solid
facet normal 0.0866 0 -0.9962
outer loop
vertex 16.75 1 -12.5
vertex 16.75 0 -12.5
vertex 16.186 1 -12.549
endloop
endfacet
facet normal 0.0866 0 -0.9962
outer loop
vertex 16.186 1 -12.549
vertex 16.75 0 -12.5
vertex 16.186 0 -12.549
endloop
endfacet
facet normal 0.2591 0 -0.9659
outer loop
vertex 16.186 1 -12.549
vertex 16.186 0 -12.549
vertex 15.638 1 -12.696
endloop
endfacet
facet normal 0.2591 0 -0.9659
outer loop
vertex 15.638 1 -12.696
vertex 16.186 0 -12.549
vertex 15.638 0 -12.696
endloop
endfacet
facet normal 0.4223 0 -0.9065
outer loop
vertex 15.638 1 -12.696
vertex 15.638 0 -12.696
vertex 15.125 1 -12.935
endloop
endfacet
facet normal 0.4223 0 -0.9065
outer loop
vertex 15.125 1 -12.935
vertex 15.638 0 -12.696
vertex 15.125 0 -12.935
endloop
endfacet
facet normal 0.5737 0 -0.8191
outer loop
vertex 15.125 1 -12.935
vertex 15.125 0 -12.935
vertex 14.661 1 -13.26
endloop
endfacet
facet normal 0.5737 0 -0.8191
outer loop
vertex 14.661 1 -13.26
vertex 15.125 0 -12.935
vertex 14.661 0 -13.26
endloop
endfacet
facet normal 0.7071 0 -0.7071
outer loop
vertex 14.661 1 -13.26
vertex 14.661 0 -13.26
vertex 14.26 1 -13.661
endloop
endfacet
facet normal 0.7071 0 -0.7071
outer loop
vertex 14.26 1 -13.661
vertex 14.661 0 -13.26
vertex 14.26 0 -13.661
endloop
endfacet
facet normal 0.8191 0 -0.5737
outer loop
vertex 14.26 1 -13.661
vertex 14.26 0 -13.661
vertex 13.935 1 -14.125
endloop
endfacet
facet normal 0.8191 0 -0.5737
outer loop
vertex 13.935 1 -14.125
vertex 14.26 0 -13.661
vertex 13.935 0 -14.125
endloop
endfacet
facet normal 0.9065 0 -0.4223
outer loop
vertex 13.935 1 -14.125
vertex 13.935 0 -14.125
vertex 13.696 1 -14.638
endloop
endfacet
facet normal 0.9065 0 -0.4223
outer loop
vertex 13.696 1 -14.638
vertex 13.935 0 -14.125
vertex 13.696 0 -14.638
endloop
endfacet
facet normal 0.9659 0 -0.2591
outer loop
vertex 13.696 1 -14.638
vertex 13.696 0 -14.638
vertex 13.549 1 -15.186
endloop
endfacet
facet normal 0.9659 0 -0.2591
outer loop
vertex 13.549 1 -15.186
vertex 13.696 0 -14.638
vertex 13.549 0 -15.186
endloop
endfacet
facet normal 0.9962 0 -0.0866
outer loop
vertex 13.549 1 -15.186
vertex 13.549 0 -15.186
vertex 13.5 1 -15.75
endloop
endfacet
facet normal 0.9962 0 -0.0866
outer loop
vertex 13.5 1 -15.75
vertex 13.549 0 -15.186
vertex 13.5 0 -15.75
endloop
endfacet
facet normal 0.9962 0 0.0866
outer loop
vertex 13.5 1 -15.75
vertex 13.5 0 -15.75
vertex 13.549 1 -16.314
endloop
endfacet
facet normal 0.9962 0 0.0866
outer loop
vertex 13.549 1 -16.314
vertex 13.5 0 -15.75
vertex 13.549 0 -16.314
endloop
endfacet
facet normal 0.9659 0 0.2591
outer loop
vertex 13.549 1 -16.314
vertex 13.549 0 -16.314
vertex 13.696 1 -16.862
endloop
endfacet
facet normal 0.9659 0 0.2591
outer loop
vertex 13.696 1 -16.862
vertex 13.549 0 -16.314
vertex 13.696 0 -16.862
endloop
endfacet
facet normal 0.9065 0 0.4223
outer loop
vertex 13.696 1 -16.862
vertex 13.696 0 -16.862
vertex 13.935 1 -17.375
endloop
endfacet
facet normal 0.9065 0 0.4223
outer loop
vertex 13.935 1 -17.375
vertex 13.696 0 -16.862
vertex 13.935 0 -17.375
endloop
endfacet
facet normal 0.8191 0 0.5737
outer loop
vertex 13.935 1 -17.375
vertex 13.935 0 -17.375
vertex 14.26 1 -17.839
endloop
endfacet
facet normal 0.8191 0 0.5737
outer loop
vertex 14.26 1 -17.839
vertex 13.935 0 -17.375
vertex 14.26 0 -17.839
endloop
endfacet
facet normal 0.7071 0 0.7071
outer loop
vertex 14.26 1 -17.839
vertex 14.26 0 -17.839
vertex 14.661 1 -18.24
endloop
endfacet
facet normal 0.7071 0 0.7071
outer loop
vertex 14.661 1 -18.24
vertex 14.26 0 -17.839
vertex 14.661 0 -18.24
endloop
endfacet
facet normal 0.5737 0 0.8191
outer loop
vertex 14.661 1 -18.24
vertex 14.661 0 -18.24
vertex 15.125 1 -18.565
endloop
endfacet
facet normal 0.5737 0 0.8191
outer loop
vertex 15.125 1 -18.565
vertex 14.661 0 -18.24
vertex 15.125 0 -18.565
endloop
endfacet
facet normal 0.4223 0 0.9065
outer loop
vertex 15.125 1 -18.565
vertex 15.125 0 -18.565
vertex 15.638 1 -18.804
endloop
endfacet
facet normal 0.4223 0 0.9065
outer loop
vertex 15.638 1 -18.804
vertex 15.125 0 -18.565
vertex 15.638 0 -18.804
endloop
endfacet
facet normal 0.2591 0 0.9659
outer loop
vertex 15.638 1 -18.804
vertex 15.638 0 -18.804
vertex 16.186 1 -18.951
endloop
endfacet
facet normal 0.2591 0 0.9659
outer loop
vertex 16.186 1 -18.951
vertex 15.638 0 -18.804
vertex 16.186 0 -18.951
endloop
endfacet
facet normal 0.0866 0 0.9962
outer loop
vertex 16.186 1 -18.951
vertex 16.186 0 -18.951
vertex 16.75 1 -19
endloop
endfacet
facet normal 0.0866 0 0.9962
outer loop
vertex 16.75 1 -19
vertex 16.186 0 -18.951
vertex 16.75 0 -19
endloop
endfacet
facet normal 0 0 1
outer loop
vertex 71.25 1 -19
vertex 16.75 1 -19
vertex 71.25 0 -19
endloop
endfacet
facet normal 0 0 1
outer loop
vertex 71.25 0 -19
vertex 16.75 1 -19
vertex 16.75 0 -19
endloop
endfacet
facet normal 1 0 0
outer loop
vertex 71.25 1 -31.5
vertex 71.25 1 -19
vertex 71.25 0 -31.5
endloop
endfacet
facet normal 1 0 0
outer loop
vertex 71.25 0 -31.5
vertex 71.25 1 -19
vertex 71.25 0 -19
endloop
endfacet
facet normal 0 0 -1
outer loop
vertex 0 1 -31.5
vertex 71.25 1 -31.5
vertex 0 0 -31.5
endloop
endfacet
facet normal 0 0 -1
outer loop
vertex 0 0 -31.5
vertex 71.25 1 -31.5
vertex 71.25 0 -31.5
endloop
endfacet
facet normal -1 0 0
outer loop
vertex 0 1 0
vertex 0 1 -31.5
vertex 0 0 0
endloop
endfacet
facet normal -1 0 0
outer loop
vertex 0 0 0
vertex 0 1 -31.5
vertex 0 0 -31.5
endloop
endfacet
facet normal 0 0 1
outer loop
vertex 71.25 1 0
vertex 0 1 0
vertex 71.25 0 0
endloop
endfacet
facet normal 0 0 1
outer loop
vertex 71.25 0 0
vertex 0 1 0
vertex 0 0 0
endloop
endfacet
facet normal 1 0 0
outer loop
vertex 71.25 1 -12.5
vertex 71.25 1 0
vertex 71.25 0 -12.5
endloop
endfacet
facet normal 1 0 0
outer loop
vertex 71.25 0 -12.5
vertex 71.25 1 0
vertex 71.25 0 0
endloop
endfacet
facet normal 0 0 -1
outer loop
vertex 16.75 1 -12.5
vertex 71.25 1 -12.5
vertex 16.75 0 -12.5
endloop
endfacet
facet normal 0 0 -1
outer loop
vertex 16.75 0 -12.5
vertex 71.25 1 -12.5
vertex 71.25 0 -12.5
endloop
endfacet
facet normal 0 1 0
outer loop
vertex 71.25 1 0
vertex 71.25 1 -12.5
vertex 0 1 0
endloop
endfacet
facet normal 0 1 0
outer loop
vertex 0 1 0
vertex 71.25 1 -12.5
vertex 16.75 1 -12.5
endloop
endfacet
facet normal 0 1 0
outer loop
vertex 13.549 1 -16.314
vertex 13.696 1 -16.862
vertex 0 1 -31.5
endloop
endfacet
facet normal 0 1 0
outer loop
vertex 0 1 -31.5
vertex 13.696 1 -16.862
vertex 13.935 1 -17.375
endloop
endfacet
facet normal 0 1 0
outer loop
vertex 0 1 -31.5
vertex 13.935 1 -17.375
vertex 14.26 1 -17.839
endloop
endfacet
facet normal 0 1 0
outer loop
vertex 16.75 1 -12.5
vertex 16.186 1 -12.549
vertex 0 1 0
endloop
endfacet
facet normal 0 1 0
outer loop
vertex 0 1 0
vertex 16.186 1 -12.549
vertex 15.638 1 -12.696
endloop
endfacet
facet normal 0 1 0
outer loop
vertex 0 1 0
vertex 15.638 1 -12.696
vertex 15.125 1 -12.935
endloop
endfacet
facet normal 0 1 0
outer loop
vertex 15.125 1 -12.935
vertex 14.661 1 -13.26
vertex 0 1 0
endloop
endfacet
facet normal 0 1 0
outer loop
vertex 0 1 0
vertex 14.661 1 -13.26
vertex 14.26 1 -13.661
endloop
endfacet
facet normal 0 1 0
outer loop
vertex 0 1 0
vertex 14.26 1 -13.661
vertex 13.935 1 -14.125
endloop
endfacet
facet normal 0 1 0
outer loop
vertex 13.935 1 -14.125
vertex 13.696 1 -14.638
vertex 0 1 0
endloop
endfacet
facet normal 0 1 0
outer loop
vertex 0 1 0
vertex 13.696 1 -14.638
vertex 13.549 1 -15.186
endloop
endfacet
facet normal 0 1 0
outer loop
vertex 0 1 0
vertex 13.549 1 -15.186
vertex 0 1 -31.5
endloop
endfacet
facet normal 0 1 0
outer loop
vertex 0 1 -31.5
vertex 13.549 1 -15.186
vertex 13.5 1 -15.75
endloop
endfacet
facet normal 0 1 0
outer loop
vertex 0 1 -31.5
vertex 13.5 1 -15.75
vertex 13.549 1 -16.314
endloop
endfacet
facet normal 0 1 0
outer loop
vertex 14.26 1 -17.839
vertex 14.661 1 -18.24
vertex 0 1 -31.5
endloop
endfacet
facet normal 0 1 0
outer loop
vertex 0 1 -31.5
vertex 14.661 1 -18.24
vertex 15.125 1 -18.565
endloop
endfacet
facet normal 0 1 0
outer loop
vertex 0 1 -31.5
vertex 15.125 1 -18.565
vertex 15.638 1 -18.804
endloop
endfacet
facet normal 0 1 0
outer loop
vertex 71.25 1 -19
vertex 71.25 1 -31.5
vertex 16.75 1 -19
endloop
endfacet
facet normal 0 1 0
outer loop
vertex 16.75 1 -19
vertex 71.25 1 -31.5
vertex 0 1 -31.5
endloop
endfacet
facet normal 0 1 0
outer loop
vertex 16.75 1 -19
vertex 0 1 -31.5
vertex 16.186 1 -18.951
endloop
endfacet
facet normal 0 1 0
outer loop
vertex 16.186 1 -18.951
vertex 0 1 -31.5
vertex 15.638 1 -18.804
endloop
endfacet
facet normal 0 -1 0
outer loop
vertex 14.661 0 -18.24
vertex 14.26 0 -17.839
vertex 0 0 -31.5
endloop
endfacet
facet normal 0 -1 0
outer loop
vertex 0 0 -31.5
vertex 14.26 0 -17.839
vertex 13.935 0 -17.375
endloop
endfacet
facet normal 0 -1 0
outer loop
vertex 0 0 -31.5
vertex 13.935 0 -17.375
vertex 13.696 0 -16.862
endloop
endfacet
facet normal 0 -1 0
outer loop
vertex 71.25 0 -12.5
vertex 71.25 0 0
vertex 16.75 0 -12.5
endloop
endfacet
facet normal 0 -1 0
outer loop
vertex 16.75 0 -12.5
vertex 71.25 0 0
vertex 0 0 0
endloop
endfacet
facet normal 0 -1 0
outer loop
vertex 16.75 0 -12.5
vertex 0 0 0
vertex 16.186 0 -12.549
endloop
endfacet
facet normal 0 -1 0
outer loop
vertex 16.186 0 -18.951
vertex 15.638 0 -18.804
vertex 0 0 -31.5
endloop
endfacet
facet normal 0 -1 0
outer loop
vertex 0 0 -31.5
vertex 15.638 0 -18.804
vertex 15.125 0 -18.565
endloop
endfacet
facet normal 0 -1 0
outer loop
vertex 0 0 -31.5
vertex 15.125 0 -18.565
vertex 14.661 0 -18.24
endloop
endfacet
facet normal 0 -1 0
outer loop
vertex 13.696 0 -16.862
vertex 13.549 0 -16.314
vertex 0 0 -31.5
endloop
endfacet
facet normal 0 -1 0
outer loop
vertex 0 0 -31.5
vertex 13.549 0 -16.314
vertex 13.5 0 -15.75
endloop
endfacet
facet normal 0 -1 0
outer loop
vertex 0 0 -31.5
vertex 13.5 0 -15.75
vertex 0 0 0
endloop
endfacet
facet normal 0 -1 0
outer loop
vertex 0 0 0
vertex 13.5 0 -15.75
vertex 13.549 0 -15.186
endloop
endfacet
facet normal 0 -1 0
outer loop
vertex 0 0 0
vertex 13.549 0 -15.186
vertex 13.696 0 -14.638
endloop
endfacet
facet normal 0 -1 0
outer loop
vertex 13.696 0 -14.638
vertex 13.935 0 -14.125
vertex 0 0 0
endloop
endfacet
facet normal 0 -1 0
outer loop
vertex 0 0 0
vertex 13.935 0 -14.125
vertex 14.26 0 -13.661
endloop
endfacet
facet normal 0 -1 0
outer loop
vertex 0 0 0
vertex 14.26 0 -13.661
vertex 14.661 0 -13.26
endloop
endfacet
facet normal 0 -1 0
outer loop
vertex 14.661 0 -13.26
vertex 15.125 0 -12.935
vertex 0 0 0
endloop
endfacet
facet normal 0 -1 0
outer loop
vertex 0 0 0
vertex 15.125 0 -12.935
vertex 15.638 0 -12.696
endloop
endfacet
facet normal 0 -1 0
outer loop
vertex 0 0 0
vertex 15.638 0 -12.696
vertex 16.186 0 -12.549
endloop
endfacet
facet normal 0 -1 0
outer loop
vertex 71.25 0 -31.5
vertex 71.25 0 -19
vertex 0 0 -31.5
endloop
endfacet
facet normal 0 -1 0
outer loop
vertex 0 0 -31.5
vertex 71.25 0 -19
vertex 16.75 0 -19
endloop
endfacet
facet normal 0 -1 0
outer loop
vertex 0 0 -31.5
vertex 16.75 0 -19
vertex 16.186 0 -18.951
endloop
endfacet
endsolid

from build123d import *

# Parameters (mm, degrees)
BOSS_EXTRUDE1_DEPTH = 1


with BuildPart() as part:
    # Sketch1 → Boss-Extrude1 (new body)
    with BuildSketch(Plane(origin=(0, 0, 0), x_dir=(1, 0, 0), z_dir=(0, 1, 0))):
        with BuildLine():
            Line((0, 31.5), (0, 0))
            Line((0, 0), (71.25, 0))
            Line((71.25, 0), (71.25, 12.5))
            Line((71.25, 12.5), (16.75, 12.5))
            ThreePointArc((16.75, 12.5), (13.5, 15.75), (16.75, 19))
            Line((16.75, 19), (71.25, 19))
            Line((71.25, 19), (71.25, 31.5))
            Line((71.25, 31.5), (0, 31.5))
        make_face()
    extrude(amount=BOSS_EXTRUDE1_DEPTH)


solid = part.part
